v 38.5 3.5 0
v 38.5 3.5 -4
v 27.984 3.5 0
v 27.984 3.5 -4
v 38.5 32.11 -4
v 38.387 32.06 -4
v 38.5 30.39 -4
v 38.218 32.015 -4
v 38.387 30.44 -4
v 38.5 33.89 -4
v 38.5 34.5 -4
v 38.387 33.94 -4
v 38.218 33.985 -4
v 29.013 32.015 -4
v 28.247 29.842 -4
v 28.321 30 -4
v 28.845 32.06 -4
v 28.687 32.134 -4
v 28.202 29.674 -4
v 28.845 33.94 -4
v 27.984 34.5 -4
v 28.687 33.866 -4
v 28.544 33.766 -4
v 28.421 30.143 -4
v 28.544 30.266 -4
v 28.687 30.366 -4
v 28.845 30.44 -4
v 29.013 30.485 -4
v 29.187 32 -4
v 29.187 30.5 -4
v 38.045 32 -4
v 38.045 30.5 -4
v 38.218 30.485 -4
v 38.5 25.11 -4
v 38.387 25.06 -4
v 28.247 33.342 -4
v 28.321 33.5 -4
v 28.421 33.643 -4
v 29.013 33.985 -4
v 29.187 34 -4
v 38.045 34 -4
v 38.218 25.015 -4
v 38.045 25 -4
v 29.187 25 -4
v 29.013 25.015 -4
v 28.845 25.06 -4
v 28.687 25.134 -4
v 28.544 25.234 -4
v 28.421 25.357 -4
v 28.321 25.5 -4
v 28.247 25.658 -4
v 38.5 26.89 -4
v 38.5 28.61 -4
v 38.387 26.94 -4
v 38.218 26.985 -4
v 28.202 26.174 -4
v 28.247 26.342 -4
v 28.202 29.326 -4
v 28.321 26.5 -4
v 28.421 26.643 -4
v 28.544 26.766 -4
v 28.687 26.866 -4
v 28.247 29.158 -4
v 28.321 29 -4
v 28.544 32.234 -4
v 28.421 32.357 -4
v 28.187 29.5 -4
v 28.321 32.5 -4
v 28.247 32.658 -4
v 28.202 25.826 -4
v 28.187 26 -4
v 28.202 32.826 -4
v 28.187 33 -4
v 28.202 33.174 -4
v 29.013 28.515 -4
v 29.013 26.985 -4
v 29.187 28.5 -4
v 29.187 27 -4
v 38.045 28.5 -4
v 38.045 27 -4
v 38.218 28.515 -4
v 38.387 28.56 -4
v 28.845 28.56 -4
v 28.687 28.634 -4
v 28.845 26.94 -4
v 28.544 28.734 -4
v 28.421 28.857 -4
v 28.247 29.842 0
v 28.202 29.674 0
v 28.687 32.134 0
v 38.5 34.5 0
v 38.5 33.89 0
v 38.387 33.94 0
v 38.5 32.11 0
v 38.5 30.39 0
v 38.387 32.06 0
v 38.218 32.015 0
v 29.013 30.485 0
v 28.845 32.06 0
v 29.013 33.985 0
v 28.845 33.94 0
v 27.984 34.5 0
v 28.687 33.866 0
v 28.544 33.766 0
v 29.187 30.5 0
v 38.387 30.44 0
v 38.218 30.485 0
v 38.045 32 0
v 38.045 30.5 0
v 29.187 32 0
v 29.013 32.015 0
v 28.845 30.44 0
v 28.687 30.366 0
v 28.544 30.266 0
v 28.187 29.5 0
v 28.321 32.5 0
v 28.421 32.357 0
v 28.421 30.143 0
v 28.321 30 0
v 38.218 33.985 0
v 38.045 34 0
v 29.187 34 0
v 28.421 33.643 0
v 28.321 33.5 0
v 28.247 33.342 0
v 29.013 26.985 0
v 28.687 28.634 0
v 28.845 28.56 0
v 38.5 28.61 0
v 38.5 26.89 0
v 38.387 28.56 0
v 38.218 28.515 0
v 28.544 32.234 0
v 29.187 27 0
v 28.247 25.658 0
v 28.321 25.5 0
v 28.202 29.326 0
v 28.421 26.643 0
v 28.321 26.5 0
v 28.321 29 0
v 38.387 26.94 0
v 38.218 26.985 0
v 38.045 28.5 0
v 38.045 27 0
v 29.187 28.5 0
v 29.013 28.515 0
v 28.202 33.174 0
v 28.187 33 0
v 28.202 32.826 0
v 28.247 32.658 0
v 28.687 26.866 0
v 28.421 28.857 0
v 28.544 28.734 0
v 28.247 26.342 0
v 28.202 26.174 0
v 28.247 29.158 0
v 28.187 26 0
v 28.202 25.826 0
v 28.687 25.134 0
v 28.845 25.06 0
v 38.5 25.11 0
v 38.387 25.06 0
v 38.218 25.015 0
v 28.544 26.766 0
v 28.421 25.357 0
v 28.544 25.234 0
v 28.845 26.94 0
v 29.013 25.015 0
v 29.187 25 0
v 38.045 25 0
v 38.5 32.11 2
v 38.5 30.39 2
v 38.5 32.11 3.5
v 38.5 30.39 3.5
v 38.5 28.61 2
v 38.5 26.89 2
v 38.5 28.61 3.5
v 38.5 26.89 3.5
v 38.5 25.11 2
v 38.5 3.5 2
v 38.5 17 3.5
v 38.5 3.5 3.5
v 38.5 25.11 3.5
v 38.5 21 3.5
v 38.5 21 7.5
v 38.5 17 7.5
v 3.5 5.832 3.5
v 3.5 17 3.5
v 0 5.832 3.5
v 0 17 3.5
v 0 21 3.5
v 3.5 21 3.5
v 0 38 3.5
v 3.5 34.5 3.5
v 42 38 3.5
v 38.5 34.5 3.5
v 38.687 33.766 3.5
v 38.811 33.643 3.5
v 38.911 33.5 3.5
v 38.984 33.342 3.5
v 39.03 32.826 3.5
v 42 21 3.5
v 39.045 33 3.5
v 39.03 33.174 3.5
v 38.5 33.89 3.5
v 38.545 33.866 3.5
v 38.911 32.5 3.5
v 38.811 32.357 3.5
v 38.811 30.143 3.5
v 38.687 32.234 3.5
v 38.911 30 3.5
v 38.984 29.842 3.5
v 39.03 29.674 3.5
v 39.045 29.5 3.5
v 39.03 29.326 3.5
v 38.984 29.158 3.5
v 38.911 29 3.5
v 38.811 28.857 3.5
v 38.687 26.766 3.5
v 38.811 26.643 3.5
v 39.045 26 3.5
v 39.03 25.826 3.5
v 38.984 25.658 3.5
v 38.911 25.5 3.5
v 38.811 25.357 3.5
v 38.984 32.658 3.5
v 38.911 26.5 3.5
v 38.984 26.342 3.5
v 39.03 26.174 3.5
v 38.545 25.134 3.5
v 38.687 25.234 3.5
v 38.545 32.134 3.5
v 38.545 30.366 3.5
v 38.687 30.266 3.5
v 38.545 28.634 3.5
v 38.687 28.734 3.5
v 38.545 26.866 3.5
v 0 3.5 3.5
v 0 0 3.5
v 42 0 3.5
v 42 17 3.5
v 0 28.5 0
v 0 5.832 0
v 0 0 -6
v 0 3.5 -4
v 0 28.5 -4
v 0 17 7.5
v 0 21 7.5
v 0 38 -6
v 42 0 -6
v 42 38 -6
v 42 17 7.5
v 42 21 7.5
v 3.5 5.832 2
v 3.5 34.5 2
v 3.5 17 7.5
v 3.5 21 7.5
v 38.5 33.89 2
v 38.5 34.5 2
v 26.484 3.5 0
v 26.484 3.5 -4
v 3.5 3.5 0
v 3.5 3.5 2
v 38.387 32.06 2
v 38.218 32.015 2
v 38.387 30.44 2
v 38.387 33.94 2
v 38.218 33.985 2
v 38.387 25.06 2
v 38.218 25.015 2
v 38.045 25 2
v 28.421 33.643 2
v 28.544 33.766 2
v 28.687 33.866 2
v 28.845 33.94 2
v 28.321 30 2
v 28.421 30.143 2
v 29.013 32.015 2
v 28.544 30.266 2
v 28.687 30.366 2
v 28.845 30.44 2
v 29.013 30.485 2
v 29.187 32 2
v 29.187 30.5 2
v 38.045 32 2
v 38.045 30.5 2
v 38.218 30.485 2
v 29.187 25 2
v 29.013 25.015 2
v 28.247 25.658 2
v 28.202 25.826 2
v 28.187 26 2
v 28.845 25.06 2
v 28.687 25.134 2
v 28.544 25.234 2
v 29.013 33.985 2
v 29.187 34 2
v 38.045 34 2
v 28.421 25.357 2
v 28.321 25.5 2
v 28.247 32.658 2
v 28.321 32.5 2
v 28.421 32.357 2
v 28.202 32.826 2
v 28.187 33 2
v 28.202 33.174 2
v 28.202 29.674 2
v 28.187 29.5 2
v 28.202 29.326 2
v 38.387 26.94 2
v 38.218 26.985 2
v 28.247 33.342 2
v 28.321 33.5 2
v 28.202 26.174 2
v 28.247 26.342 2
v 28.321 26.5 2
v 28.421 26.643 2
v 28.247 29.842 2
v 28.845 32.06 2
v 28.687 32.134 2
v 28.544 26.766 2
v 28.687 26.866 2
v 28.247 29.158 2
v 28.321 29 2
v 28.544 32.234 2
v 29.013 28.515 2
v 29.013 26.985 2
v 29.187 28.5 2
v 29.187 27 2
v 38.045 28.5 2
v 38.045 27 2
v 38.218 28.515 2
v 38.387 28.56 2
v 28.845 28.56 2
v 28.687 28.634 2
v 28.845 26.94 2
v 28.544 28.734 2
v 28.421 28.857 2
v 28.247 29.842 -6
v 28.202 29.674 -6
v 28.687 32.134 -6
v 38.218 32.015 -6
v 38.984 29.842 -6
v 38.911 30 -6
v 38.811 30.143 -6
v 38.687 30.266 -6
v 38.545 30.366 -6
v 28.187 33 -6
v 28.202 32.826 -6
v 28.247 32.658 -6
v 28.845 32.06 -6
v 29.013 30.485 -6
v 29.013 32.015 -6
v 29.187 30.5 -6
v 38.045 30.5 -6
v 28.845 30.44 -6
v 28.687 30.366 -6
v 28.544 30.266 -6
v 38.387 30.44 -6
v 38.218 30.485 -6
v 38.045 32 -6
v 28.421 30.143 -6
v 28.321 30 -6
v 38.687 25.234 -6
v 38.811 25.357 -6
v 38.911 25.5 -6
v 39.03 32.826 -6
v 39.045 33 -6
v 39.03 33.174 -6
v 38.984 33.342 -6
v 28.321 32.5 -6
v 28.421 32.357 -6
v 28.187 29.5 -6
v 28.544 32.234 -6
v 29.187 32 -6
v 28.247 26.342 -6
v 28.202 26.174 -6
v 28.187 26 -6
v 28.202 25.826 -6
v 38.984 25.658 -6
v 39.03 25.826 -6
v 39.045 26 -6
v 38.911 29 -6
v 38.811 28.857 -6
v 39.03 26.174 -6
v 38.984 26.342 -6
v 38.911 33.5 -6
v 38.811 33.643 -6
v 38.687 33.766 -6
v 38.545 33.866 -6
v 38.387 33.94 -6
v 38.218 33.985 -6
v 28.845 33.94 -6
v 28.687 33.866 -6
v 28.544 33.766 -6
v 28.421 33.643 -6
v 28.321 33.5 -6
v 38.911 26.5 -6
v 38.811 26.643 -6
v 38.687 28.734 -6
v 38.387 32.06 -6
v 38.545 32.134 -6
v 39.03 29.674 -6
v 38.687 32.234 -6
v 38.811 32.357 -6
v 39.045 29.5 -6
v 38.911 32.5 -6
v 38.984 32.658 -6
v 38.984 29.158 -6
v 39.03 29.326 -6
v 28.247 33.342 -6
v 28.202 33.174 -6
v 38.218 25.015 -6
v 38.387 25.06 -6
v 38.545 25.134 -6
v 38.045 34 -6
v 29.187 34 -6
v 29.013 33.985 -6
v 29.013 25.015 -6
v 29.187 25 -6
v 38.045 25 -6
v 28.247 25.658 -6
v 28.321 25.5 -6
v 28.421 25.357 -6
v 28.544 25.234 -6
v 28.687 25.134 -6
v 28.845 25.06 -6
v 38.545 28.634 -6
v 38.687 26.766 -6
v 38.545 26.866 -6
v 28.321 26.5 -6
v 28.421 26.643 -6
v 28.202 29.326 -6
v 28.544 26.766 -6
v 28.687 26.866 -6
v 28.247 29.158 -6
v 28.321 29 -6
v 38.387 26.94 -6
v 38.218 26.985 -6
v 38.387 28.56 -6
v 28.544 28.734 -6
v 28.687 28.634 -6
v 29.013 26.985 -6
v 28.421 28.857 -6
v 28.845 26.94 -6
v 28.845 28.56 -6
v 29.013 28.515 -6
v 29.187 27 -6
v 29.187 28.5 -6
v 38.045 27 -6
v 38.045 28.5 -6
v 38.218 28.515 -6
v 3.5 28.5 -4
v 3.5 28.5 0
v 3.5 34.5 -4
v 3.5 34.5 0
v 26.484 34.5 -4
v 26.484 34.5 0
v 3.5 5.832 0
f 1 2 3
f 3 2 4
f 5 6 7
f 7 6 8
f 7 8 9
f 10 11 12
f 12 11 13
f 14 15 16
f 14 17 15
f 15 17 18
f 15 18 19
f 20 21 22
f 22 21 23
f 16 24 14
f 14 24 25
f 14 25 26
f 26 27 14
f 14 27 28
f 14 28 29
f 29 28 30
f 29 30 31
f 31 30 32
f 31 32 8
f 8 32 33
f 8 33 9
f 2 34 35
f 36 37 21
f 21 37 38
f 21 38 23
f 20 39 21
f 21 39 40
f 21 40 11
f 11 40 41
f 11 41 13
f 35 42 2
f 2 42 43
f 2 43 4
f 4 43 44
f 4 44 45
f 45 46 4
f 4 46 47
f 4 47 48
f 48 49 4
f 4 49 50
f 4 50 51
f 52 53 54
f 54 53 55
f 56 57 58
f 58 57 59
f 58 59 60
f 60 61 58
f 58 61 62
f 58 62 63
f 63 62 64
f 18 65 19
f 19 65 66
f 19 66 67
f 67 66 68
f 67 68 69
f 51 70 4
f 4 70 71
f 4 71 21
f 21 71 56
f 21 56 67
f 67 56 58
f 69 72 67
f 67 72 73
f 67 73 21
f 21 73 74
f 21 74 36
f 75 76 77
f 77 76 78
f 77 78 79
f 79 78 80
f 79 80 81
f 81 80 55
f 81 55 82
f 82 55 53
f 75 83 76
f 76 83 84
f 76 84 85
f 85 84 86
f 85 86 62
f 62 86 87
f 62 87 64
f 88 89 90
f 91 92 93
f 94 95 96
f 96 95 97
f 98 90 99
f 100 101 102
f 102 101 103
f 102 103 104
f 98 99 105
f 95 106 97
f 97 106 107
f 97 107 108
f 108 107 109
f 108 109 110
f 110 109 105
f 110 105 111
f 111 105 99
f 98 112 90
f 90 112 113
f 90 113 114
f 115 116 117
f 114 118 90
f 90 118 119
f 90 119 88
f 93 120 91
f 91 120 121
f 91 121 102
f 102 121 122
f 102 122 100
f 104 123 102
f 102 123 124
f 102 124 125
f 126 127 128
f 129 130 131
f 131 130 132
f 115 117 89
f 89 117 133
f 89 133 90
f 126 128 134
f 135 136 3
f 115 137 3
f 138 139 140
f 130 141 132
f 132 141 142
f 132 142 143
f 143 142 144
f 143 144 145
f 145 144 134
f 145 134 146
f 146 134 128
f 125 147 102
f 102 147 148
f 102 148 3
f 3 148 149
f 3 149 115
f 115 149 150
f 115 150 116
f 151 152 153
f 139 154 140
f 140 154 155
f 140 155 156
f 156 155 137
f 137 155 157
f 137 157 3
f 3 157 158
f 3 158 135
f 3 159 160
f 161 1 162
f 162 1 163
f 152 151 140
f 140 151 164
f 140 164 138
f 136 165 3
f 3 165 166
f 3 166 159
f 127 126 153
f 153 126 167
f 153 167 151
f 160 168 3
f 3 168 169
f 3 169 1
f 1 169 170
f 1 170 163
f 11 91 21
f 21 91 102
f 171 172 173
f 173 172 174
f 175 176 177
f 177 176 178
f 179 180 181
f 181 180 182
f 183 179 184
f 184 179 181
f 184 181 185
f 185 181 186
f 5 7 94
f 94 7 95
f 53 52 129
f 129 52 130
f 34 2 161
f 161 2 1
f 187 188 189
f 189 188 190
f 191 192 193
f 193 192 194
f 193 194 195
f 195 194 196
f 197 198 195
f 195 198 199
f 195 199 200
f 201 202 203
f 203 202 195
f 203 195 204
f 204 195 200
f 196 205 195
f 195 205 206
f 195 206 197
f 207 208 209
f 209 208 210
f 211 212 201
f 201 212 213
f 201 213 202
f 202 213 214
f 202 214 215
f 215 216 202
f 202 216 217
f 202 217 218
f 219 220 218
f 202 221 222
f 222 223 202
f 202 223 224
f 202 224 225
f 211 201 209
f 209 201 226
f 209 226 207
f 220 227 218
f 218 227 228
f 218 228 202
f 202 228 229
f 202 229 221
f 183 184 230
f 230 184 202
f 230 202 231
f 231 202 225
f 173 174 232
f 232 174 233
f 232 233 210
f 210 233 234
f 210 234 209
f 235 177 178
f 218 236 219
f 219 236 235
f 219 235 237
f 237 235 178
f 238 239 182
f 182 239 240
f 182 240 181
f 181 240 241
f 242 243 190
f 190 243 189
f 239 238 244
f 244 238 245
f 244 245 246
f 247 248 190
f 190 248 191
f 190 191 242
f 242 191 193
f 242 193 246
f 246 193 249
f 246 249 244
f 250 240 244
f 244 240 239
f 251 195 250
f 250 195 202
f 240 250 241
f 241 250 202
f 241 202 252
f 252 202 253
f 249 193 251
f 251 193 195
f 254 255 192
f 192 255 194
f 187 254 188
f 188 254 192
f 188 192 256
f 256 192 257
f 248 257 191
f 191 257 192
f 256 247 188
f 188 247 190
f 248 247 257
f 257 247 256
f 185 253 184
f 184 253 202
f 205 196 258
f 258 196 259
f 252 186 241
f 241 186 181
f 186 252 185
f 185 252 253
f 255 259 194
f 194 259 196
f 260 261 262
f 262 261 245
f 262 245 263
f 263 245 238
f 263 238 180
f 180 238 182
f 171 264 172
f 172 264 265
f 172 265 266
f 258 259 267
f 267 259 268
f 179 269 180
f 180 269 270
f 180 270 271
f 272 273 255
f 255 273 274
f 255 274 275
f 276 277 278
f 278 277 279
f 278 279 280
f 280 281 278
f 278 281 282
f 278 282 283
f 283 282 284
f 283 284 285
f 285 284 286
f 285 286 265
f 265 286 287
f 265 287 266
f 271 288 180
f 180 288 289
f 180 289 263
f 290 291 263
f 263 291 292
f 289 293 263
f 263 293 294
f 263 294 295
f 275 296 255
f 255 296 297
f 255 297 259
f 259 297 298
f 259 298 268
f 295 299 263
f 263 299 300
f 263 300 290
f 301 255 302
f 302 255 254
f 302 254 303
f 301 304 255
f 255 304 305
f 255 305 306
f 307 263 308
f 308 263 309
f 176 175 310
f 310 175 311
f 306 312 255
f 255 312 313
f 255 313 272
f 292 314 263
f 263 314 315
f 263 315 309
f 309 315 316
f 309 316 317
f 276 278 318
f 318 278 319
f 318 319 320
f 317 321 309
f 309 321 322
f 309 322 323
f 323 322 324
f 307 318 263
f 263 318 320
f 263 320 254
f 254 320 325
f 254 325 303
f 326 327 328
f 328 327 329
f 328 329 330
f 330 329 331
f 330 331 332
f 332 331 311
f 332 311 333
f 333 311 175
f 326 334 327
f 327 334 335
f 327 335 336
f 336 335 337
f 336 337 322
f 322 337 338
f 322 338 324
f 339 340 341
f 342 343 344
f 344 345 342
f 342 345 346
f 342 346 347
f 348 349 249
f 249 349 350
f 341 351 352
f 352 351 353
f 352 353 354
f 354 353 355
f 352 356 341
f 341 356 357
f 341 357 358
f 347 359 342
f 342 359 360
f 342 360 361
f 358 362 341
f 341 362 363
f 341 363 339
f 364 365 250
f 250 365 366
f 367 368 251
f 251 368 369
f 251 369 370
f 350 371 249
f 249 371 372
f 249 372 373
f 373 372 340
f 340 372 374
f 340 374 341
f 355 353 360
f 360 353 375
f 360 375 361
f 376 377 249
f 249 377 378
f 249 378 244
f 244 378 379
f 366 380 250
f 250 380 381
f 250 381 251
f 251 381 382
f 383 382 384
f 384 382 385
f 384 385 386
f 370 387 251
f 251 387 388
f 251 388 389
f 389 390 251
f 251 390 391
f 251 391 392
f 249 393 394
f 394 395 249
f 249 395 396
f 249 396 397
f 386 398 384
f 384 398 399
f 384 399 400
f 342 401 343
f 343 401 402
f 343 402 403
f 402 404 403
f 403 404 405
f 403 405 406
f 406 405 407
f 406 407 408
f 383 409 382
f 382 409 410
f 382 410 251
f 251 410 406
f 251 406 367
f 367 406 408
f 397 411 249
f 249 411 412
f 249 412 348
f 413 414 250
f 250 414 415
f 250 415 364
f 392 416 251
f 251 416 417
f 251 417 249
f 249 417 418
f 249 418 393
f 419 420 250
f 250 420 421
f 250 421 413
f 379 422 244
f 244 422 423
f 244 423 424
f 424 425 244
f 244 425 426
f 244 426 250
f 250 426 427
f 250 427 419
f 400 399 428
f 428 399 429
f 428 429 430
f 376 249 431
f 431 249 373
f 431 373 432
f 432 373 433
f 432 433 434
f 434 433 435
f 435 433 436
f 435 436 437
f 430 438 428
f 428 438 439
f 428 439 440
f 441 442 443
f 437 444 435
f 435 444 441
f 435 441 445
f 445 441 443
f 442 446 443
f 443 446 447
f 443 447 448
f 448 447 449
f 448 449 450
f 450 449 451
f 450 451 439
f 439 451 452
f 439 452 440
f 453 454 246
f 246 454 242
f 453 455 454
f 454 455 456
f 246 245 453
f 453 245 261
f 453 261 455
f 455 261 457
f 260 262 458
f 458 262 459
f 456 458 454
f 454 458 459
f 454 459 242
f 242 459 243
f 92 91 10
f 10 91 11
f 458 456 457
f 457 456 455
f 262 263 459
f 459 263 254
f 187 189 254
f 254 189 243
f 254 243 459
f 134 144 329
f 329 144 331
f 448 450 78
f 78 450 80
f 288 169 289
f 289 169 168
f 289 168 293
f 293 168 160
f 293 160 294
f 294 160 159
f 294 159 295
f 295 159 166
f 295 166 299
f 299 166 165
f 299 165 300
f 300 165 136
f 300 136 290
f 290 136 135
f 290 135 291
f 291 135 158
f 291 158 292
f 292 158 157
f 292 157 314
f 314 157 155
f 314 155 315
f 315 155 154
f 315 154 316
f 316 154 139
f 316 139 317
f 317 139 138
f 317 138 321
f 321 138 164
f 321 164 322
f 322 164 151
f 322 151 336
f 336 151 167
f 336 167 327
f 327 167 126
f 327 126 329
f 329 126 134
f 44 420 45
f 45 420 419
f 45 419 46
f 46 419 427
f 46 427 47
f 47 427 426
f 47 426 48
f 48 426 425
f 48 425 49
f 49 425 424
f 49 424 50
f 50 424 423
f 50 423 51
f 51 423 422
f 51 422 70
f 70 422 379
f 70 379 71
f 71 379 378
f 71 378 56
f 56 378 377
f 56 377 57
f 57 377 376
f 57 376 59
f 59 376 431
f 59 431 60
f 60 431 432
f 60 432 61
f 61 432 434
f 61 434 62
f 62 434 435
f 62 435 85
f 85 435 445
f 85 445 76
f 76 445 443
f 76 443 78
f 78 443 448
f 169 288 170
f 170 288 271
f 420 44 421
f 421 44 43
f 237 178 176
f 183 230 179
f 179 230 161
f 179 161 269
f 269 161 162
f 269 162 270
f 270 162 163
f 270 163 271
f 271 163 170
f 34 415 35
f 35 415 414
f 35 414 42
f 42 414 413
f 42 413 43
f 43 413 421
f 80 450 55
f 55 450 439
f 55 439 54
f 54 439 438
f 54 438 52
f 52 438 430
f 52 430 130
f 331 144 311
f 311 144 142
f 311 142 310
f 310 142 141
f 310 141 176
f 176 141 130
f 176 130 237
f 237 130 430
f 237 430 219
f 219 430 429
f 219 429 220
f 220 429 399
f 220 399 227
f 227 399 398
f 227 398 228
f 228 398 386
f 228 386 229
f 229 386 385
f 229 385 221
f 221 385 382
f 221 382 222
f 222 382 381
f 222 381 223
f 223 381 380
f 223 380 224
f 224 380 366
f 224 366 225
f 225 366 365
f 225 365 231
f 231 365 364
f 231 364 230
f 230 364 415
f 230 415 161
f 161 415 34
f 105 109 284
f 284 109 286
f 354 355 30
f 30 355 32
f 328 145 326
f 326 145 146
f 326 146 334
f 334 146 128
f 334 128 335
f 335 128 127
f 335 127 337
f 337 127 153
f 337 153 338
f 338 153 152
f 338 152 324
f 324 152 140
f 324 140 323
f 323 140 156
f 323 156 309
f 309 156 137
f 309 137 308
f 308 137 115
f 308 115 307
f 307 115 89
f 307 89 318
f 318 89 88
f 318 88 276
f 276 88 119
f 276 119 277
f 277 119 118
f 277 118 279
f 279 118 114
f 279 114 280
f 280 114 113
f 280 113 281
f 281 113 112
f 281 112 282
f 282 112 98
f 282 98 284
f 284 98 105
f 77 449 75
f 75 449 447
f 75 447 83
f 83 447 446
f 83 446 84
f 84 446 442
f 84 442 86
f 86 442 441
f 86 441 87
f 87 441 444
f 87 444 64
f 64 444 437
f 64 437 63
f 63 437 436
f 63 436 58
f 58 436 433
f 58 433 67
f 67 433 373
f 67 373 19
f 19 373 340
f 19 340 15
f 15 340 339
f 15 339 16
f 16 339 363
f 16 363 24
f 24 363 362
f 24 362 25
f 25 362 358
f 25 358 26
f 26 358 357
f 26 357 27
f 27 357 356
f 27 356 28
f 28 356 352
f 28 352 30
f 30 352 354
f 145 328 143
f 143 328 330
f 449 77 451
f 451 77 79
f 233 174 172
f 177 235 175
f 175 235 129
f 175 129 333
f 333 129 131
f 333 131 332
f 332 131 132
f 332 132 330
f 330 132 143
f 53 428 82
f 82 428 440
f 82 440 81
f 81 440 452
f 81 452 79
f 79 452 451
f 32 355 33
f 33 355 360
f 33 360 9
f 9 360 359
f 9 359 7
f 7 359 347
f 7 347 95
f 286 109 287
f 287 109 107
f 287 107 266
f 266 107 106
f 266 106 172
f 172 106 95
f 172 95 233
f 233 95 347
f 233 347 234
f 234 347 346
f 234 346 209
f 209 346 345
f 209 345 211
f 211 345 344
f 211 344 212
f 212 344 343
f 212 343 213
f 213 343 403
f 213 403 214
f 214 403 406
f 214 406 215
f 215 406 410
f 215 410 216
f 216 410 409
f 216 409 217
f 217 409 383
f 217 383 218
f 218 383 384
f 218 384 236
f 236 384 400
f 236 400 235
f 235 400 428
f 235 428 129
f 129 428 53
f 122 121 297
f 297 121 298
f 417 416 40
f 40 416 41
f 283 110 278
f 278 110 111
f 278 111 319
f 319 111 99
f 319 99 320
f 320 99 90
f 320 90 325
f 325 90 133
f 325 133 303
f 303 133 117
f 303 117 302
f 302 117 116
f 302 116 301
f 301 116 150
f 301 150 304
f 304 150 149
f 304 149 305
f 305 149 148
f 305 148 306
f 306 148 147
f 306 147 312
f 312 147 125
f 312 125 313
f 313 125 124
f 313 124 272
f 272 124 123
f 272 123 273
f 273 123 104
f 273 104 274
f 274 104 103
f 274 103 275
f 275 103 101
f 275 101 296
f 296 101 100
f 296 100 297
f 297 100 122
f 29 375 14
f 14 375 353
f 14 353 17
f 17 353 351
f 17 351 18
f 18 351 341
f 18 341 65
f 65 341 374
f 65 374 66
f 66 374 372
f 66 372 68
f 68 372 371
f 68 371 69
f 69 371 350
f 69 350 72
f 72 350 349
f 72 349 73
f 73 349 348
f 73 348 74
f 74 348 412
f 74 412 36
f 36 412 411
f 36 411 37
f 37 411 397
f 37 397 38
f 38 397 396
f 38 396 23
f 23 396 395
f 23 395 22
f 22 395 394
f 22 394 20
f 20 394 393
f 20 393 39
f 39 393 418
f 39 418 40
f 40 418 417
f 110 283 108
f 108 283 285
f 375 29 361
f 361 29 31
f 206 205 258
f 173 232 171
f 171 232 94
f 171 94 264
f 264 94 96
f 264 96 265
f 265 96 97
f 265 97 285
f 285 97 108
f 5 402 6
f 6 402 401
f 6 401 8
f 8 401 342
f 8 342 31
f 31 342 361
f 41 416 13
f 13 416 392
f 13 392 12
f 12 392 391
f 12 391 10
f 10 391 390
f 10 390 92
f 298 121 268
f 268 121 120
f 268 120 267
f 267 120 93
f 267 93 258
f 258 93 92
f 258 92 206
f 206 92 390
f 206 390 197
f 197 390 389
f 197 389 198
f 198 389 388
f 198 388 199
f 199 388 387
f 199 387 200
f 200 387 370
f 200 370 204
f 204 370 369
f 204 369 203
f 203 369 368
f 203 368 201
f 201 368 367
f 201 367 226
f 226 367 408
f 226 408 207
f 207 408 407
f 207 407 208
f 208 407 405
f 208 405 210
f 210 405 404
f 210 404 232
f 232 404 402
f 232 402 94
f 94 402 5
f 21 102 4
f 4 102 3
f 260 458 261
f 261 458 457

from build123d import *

# Parameters (mm, degrees)
SKETCH_1_W          = 42
SKETCH_1_H          = 38
EXTRUDE_1_DEPTH     = 3.5
EXTRUDE_2_DEPTH     = 4
SKETCH_3_W          = 35
SKETCH_3_H          = 31
CUT_EXTRUDE_1_DEPTH = 1.5
SKETCH_4_W          = 42
SKETCH_4_H          = 38
SKETCH_4_W_2        = 35
SKETCH_4_H_2        = 31
EXTRUDE_3_DEPTH     = 4
SKETCH_6_W          = 42
SKETCH_6_H          = 38
EXTRUDE_4_DEPTH     = 2
SKETCH_7_W          = 4
SKETCH_7_H          = 25
CUT_EXTRUDE_2_DEPTH = 3.5
SKETCH_8_W          = 3.5
SKETCH_8_H          = 2.331830178
CUT_EXTRUDE_3_DEPTH = 3.5
CUT_EXTRUDE_4_DEPTH = 10
SKETCH_10_W         = 1.5
SKETCH_10_H         = 31
EXTRUDE_5_DEPTH     = 5


with BuildPart() as part:
    # 草图1 → 凸台-拉伸1 (new body)
    with BuildSketch(Plane.XY):
        with Locations((21, 19)):
            Rectangle(SKETCH_1_W, SKETCH_1_H)
    extrude(amount=EXTRUDE_1_DEPTH)

    # 草图2 → 凸台-拉伸2 (add)
    with BuildSketch(Plane.XY.offset(3.5)):
        Polygon((0, 21), (0, 19), (0, 17), (3.5, 17), (3.5, 21), align=None)
        Polygon((42, 17), (42, 19), (42, 21), (38.5, 21), (38.5, 17), align=None)
    extrude(amount=EXTRUDE_2_DEPTH)

    # 草图3 → 切除-拉伸1 (cut)
    with BuildSketch(Plane.XY.offset(3.5)):
        with Locations((21, 19)):
            Rectangle(SKETCH_3_W, SKETCH_3_H)
    extrude(amount=-CUT_EXTRUDE_1_DEPTH, mode=Mode.SUBTRACT)

    # 草图4 → 凸台-拉伸3 (add)
    with BuildSketch(Plane(origin=(0, 0, 0), x_dir=(-1, 0, 0), z_dir=(0, 0, -1))):
        with Locations((-21, 19)):
            Rectangle(SKETCH_4_W, SKETCH_4_H)
        with Locations((-21, 19)):
            Rectangle(SKETCH_4_W_2, SKETCH_4_H_2, mode=Mode.SUBTRACT)
    extrude(amount=EXTRUDE_3_DEPTH)

    # 草图6 → 凸台-拉伸4 (add)
    with BuildSketch(Plane(origin=(0, 0, -4), x_dir=(-1, 0, 0), z_dir=(0, 0, -1))):
        with Locations((-21, 19)):
            Rectangle(SKETCH_6_W, SKETCH_6_H)
    extrude(amount=EXTRUDE_4_DEPTH)

    # 草图7 → 切除-拉伸2 (cut)
    with BuildSketch(Plane.ZY):
        with Locations((-2, 16)):
            Rectangle(SKETCH_7_W, SKETCH_7_H)
    extrude(amount=-CUT_EXTRUDE_2_DEPTH, mode=Mode.SUBTRACT)

    # 草图8 → 切除-拉伸3 (cut)
    with BuildSketch(Plane.ZY):
        with Locations((1.75, 4.665915089)):
            Rectangle(SKETCH_8_W, SKETCH_8_H)
    extrude(amount=-CUT_EXTRUDE_3_DEPTH, mode=Mode.SUBTRACT)

    # 草图9 → 切除-拉伸4 (cut)
    with BuildSketch(Plane(origin=(0, 0, -6), x_dir=(-1, 0, 0), z_dir=(0, 0, -1))):
        with BuildLine():
            Line((-38.044699478, 27), (-29.186779496, 27))
            ThreePointArc((-29.186779496, 27), (-28.186779496, 26), (-29.186779496, 25))
            Line((-29.186779496, 25), (-38.044699478, 25))
            ThreePointArc((-38.044699478, 25), (-39.044699478, 26), (-38.044699478, 27))
        make_face()
        with BuildLine():
            Line((-38.044699478, 30.5), (-29.186779496, 30.5))
            ThreePointArc((-29.186779496, 30.5), (-28.186779496, 29.5), (-29.186779496, 28.5))
            Line((-29.186779496, 28.5), (-38.044699478, 28.5))
            ThreePointArc((-38.044699478, 28.5), (-39.044699478, 29.5), (-38.044699478, 30.5))
        make_face()
        with BuildLine():
            Line((-38.044699478, 34), (-29.186779496, 34))
            ThreePointArc((-29.186779496, 34), (-28.186779496, 33), (-29.186779496, 32))
            Line((-29.186779496, 32), (-38.044699478, 32))
            ThreePointArc((-38.044699478, 32), (-39.044699478, 33), (-38.044699478, 34))
        make_face()
    extrude(amount=-CUT_EXTRUDE_4_DEPTH, mode=Mode.SUBTRACT)

    # 草图10 → 凸台-拉伸5 (add)
    with BuildSketch(Plane(origin=(0, 0, 0), x_dir=(-1, 0, 0), z_dir=(0, 0, -1))):
        with Locations((-27.23390418, 19)):
            Rectangle(SKETCH_10_W, SKETCH_10_H)
    extrude(amount=EXTRUDE_5_DEPTH)


solid = part.part
